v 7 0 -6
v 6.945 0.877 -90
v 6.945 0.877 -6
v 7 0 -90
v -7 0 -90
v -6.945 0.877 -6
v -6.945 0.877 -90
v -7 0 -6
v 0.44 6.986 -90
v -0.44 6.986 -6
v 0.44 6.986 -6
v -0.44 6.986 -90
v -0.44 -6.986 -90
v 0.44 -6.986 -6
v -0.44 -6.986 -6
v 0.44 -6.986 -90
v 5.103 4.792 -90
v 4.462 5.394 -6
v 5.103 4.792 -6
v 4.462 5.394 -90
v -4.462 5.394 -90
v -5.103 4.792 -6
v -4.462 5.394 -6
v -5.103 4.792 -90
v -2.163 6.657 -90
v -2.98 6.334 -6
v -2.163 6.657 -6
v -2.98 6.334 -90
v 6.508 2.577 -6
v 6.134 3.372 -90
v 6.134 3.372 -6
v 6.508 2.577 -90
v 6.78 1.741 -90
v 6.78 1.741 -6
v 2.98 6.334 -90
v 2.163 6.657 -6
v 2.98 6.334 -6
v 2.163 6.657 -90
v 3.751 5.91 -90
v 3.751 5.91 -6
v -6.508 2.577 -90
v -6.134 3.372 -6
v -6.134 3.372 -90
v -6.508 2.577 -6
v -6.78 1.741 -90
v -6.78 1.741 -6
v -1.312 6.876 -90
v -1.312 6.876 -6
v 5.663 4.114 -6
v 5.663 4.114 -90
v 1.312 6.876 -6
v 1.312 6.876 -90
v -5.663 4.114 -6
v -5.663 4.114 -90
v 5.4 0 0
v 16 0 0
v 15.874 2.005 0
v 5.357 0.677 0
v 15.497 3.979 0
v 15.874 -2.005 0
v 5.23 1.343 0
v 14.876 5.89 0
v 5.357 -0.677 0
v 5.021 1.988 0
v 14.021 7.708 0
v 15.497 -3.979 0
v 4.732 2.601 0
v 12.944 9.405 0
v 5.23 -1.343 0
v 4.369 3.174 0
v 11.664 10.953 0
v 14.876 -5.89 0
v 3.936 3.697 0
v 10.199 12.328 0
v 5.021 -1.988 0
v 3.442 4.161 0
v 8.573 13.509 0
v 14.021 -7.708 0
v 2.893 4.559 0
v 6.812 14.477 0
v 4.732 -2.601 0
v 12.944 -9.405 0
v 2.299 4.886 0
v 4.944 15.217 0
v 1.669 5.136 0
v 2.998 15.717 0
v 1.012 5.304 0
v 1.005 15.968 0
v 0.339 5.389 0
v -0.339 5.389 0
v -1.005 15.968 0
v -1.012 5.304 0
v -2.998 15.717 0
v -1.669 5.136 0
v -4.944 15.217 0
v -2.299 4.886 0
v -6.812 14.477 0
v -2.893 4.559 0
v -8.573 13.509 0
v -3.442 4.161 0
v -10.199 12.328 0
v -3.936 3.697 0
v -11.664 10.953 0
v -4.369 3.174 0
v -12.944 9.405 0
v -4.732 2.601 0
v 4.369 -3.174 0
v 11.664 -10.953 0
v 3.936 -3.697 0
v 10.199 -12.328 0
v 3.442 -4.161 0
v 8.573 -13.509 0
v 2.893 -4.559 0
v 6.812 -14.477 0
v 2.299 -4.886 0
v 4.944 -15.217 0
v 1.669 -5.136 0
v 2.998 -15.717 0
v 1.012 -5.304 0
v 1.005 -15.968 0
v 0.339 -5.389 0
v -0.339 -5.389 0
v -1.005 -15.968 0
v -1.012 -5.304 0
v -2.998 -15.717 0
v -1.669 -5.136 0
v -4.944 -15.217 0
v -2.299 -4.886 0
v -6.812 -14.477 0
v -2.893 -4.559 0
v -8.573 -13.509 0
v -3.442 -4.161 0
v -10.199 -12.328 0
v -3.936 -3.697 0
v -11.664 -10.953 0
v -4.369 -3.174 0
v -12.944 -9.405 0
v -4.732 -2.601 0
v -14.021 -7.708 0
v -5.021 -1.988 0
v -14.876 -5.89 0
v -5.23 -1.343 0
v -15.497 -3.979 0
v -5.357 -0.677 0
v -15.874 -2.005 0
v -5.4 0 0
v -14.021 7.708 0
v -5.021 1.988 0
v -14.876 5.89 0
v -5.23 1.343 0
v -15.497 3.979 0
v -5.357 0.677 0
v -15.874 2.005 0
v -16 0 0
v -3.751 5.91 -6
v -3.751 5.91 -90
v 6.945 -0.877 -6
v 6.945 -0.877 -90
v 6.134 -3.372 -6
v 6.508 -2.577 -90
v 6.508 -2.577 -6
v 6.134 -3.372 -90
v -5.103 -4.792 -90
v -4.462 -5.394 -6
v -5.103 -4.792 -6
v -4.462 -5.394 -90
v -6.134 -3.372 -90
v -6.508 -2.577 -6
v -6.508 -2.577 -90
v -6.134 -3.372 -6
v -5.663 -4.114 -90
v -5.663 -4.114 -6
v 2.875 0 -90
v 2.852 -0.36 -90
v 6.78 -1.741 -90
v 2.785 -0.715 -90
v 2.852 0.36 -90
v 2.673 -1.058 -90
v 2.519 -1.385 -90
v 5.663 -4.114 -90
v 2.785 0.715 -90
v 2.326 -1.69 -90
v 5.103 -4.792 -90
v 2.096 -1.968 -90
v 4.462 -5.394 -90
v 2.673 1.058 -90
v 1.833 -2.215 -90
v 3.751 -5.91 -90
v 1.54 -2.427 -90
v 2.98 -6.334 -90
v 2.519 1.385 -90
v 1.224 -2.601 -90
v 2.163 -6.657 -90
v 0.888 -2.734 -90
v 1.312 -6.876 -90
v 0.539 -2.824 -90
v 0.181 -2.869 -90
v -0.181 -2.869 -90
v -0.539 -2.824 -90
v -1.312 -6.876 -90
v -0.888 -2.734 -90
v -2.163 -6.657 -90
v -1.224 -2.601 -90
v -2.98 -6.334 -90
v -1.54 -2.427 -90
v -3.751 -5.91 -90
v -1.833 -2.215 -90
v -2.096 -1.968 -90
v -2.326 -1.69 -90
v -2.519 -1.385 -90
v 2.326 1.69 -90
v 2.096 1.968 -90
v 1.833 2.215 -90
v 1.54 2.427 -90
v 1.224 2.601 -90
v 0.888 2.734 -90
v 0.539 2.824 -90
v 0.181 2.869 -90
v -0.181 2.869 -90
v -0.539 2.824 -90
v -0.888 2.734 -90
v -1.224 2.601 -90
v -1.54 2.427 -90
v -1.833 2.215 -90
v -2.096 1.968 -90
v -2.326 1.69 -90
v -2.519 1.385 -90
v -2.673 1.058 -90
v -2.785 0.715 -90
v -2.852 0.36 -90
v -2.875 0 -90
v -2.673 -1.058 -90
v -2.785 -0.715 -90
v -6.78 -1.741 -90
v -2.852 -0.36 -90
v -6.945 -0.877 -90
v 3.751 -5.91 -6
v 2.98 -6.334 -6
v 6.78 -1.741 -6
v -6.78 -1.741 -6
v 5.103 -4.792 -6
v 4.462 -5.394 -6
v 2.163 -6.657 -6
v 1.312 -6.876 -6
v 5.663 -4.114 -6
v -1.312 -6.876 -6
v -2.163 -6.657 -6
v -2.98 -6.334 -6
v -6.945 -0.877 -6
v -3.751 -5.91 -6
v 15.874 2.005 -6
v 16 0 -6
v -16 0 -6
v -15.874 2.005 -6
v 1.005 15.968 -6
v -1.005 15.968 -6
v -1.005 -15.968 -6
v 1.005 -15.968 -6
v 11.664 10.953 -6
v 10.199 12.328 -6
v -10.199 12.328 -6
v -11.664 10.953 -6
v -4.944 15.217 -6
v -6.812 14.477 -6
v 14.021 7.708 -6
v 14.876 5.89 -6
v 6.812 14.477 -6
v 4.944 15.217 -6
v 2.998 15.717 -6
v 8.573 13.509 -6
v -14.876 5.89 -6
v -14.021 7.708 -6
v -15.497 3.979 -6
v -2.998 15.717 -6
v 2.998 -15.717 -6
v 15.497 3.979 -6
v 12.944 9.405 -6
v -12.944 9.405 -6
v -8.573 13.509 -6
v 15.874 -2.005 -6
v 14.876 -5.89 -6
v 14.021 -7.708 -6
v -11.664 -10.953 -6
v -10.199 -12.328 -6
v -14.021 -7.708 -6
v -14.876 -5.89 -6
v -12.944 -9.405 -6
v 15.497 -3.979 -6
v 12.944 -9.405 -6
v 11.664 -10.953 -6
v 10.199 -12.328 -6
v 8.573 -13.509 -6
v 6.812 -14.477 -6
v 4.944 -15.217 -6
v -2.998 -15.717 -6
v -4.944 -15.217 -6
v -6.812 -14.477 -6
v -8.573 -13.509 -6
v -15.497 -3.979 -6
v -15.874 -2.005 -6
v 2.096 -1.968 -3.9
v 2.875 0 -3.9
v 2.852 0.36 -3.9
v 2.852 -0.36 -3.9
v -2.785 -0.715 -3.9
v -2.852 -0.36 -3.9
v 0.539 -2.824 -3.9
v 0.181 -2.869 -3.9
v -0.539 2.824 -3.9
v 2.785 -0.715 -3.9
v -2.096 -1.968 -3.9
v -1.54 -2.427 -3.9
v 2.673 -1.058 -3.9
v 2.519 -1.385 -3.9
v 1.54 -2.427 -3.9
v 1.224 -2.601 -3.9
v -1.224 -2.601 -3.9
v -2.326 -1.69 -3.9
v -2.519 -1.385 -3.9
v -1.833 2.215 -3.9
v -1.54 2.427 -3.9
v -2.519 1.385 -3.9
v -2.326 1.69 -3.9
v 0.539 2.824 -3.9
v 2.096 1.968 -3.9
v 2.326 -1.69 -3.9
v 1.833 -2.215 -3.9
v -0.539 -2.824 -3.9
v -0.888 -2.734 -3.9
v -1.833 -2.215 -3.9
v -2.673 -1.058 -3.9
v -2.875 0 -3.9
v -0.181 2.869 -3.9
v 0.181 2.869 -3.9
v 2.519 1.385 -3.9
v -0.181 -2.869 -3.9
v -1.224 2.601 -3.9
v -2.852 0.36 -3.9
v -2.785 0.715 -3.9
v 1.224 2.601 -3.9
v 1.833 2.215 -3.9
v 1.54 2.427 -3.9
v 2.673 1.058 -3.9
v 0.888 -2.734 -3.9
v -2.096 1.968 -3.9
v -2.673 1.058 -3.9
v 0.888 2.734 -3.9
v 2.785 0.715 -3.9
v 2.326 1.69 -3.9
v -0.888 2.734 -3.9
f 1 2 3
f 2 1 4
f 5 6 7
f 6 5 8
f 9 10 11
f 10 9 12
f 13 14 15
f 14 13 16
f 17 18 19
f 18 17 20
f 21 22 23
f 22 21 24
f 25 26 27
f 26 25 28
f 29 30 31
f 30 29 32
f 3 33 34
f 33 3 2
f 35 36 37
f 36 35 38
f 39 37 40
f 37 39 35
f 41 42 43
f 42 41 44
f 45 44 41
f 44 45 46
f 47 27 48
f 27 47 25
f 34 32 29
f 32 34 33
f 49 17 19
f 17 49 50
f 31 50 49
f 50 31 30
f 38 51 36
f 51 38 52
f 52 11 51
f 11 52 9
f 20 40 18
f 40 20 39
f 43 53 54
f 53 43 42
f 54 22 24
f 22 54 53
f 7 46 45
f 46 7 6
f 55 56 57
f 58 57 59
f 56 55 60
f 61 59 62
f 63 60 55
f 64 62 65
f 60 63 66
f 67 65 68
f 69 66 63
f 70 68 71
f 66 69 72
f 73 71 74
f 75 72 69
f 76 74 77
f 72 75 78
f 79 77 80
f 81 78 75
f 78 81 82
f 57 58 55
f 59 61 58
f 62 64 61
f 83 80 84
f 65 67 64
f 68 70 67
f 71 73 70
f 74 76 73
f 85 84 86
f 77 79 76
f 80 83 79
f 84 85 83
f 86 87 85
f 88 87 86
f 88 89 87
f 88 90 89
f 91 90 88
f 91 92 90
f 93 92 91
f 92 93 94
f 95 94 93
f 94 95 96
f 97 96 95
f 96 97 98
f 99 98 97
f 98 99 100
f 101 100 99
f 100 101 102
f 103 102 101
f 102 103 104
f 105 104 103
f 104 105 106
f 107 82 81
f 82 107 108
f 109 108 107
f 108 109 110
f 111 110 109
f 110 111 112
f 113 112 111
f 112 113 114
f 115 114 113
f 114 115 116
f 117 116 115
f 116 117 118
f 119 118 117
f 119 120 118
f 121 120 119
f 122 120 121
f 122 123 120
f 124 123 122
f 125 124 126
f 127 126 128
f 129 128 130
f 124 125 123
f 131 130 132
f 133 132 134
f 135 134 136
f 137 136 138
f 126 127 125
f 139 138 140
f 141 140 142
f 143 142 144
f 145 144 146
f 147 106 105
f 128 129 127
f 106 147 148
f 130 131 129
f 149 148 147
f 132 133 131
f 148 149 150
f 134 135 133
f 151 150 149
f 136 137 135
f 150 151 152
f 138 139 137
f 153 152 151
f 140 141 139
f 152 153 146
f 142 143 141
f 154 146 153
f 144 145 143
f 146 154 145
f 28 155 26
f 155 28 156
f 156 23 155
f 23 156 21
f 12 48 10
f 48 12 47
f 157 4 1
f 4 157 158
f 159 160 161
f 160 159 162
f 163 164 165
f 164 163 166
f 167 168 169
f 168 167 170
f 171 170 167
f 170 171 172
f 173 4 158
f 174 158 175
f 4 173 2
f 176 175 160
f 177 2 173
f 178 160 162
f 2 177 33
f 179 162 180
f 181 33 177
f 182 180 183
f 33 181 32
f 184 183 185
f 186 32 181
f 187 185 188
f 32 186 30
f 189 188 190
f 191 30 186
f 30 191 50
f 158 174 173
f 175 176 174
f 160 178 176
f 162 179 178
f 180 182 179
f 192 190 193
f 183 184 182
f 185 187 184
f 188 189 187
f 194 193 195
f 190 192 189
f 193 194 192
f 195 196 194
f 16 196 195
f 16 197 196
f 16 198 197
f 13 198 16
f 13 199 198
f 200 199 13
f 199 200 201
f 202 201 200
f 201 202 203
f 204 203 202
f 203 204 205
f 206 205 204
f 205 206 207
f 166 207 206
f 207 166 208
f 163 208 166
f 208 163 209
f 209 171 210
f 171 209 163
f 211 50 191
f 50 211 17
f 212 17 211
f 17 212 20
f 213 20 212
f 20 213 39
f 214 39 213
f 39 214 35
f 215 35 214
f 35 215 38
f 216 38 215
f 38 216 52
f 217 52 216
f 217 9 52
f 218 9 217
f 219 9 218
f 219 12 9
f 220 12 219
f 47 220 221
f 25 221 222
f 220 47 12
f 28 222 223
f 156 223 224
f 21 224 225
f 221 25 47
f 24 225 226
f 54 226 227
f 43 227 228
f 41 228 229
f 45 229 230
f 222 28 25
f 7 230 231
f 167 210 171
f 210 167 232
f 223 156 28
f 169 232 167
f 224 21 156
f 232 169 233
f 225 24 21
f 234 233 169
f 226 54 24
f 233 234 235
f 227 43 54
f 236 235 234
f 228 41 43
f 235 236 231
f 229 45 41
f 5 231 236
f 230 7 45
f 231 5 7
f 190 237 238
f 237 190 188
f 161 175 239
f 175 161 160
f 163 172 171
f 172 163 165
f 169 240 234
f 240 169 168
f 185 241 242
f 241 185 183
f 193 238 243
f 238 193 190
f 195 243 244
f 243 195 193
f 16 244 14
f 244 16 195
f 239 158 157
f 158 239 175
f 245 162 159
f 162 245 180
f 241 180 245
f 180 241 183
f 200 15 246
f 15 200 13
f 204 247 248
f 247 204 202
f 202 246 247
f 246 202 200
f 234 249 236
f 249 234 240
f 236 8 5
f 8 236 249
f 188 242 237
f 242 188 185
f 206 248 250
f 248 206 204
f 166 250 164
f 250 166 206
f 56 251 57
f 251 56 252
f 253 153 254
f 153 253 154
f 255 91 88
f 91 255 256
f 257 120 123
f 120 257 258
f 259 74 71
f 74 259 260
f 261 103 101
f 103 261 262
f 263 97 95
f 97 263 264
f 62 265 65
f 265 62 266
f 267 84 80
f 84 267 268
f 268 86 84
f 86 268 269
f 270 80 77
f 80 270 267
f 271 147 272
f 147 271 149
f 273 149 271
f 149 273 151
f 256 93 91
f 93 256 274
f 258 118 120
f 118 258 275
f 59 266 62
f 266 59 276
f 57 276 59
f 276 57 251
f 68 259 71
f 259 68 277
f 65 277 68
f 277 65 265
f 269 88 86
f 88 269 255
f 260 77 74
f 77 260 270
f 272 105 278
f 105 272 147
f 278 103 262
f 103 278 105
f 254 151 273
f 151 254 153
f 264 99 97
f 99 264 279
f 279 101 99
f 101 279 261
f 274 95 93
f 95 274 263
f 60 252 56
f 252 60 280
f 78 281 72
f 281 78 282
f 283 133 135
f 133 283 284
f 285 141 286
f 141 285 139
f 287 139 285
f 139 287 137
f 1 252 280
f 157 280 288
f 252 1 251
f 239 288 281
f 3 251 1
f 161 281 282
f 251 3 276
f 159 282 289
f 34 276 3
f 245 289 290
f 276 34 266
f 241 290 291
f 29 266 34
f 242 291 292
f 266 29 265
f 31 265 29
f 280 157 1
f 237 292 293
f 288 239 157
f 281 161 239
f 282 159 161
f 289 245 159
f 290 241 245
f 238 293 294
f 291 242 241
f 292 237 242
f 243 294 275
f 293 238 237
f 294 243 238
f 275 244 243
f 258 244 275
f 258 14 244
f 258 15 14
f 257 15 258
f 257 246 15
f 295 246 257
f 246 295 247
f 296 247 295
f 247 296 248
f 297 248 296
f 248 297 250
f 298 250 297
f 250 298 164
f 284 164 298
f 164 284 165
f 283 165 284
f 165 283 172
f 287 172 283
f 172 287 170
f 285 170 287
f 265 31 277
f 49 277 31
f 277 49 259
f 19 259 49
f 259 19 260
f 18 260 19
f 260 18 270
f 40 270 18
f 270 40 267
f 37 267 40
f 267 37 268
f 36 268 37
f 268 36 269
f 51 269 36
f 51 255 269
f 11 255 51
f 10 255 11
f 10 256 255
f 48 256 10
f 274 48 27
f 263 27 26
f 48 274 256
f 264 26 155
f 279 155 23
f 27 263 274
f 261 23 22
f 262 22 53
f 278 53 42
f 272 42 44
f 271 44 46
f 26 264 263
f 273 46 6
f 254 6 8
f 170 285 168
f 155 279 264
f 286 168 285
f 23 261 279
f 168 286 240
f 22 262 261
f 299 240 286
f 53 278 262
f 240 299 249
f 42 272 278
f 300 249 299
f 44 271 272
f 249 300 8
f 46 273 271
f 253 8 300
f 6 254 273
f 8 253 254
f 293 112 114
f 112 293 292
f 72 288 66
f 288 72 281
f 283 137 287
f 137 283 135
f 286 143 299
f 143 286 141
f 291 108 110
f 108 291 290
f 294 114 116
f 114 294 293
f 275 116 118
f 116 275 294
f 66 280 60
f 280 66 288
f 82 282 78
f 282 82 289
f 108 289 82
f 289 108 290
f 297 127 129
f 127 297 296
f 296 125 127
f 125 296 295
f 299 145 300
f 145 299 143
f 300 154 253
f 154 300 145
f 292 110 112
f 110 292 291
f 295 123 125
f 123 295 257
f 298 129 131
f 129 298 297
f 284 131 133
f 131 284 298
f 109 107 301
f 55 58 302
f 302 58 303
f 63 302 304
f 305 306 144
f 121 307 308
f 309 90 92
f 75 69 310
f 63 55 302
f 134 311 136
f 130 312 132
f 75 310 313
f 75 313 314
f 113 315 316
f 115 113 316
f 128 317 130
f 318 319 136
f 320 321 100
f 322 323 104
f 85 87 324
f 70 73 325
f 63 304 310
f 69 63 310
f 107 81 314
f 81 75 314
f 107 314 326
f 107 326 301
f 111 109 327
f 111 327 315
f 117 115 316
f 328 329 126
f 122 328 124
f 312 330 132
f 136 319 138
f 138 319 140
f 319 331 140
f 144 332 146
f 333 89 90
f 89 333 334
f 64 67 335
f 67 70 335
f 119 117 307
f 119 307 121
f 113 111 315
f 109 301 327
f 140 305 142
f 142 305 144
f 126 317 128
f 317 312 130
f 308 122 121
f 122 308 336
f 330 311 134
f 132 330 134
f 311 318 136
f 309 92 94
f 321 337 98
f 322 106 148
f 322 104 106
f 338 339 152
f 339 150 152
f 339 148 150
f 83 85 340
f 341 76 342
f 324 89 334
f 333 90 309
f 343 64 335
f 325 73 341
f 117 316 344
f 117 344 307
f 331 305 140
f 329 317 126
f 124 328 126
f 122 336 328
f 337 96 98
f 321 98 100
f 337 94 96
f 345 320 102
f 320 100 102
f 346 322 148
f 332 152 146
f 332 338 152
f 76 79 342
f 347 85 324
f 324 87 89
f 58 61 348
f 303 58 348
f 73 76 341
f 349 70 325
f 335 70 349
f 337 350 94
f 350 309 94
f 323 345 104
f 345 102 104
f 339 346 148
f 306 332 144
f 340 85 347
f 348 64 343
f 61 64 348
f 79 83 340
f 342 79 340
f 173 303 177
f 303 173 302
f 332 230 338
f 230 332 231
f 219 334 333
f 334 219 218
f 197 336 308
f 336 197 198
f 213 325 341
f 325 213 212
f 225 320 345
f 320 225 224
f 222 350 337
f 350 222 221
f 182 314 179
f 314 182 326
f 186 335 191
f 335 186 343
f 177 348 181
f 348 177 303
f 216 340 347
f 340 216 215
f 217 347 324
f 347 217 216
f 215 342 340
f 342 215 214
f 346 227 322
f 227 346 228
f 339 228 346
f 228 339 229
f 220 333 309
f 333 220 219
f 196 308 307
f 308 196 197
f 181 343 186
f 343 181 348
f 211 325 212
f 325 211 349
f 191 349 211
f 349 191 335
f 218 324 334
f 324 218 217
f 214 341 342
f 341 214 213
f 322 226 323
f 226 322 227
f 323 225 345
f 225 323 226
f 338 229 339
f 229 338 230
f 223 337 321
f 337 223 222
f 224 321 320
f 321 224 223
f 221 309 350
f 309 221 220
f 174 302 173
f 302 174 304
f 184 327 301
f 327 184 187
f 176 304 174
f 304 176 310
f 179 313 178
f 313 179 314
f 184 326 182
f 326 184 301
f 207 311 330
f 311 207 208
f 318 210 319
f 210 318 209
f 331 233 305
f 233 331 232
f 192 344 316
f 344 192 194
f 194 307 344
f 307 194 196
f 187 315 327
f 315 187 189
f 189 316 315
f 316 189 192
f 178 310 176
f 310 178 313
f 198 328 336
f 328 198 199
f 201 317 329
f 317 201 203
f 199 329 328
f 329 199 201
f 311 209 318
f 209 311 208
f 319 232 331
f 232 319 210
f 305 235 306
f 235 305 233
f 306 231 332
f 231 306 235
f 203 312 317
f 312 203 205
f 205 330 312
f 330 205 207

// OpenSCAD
$fn = 50;


difference() {
	union() {
		translate(v = [0, 0, -90.0000000000]) {
			cylinder(h = 90, r = 7.0000000000);
		}
		translate(v = [0, 0, -6.0000000000]) {
			cylinder(h = 6, r = 16.0000000000);
		}
	}
	union() {
		translate(v = [0, 0, 0]) {
			rotate(a = [0, 0, 0]) {
				difference() {
					union() {
						#translate(v = [0, 0, -90.0000000000]) {
							cylinder(h = 90, r = 2.6000000000);
						}
						#translate(v = [0, 0, -3.9000000000]) {
							cylinder(h = 3.9000000000, r1 = 2.8750000000, r2 = 5.4000000000);
						}
						#translate(v = [0, 0, -90.0000000000]) {
							cylinder(h = 90, r = 2.8750000000);
						}
						#translate(v = [0, 0, -90.0000000000]) {
							cylinder(h = 90, r = 2.6000000000);
						}
					}
					union();
				}
			}
		}
	}
}
